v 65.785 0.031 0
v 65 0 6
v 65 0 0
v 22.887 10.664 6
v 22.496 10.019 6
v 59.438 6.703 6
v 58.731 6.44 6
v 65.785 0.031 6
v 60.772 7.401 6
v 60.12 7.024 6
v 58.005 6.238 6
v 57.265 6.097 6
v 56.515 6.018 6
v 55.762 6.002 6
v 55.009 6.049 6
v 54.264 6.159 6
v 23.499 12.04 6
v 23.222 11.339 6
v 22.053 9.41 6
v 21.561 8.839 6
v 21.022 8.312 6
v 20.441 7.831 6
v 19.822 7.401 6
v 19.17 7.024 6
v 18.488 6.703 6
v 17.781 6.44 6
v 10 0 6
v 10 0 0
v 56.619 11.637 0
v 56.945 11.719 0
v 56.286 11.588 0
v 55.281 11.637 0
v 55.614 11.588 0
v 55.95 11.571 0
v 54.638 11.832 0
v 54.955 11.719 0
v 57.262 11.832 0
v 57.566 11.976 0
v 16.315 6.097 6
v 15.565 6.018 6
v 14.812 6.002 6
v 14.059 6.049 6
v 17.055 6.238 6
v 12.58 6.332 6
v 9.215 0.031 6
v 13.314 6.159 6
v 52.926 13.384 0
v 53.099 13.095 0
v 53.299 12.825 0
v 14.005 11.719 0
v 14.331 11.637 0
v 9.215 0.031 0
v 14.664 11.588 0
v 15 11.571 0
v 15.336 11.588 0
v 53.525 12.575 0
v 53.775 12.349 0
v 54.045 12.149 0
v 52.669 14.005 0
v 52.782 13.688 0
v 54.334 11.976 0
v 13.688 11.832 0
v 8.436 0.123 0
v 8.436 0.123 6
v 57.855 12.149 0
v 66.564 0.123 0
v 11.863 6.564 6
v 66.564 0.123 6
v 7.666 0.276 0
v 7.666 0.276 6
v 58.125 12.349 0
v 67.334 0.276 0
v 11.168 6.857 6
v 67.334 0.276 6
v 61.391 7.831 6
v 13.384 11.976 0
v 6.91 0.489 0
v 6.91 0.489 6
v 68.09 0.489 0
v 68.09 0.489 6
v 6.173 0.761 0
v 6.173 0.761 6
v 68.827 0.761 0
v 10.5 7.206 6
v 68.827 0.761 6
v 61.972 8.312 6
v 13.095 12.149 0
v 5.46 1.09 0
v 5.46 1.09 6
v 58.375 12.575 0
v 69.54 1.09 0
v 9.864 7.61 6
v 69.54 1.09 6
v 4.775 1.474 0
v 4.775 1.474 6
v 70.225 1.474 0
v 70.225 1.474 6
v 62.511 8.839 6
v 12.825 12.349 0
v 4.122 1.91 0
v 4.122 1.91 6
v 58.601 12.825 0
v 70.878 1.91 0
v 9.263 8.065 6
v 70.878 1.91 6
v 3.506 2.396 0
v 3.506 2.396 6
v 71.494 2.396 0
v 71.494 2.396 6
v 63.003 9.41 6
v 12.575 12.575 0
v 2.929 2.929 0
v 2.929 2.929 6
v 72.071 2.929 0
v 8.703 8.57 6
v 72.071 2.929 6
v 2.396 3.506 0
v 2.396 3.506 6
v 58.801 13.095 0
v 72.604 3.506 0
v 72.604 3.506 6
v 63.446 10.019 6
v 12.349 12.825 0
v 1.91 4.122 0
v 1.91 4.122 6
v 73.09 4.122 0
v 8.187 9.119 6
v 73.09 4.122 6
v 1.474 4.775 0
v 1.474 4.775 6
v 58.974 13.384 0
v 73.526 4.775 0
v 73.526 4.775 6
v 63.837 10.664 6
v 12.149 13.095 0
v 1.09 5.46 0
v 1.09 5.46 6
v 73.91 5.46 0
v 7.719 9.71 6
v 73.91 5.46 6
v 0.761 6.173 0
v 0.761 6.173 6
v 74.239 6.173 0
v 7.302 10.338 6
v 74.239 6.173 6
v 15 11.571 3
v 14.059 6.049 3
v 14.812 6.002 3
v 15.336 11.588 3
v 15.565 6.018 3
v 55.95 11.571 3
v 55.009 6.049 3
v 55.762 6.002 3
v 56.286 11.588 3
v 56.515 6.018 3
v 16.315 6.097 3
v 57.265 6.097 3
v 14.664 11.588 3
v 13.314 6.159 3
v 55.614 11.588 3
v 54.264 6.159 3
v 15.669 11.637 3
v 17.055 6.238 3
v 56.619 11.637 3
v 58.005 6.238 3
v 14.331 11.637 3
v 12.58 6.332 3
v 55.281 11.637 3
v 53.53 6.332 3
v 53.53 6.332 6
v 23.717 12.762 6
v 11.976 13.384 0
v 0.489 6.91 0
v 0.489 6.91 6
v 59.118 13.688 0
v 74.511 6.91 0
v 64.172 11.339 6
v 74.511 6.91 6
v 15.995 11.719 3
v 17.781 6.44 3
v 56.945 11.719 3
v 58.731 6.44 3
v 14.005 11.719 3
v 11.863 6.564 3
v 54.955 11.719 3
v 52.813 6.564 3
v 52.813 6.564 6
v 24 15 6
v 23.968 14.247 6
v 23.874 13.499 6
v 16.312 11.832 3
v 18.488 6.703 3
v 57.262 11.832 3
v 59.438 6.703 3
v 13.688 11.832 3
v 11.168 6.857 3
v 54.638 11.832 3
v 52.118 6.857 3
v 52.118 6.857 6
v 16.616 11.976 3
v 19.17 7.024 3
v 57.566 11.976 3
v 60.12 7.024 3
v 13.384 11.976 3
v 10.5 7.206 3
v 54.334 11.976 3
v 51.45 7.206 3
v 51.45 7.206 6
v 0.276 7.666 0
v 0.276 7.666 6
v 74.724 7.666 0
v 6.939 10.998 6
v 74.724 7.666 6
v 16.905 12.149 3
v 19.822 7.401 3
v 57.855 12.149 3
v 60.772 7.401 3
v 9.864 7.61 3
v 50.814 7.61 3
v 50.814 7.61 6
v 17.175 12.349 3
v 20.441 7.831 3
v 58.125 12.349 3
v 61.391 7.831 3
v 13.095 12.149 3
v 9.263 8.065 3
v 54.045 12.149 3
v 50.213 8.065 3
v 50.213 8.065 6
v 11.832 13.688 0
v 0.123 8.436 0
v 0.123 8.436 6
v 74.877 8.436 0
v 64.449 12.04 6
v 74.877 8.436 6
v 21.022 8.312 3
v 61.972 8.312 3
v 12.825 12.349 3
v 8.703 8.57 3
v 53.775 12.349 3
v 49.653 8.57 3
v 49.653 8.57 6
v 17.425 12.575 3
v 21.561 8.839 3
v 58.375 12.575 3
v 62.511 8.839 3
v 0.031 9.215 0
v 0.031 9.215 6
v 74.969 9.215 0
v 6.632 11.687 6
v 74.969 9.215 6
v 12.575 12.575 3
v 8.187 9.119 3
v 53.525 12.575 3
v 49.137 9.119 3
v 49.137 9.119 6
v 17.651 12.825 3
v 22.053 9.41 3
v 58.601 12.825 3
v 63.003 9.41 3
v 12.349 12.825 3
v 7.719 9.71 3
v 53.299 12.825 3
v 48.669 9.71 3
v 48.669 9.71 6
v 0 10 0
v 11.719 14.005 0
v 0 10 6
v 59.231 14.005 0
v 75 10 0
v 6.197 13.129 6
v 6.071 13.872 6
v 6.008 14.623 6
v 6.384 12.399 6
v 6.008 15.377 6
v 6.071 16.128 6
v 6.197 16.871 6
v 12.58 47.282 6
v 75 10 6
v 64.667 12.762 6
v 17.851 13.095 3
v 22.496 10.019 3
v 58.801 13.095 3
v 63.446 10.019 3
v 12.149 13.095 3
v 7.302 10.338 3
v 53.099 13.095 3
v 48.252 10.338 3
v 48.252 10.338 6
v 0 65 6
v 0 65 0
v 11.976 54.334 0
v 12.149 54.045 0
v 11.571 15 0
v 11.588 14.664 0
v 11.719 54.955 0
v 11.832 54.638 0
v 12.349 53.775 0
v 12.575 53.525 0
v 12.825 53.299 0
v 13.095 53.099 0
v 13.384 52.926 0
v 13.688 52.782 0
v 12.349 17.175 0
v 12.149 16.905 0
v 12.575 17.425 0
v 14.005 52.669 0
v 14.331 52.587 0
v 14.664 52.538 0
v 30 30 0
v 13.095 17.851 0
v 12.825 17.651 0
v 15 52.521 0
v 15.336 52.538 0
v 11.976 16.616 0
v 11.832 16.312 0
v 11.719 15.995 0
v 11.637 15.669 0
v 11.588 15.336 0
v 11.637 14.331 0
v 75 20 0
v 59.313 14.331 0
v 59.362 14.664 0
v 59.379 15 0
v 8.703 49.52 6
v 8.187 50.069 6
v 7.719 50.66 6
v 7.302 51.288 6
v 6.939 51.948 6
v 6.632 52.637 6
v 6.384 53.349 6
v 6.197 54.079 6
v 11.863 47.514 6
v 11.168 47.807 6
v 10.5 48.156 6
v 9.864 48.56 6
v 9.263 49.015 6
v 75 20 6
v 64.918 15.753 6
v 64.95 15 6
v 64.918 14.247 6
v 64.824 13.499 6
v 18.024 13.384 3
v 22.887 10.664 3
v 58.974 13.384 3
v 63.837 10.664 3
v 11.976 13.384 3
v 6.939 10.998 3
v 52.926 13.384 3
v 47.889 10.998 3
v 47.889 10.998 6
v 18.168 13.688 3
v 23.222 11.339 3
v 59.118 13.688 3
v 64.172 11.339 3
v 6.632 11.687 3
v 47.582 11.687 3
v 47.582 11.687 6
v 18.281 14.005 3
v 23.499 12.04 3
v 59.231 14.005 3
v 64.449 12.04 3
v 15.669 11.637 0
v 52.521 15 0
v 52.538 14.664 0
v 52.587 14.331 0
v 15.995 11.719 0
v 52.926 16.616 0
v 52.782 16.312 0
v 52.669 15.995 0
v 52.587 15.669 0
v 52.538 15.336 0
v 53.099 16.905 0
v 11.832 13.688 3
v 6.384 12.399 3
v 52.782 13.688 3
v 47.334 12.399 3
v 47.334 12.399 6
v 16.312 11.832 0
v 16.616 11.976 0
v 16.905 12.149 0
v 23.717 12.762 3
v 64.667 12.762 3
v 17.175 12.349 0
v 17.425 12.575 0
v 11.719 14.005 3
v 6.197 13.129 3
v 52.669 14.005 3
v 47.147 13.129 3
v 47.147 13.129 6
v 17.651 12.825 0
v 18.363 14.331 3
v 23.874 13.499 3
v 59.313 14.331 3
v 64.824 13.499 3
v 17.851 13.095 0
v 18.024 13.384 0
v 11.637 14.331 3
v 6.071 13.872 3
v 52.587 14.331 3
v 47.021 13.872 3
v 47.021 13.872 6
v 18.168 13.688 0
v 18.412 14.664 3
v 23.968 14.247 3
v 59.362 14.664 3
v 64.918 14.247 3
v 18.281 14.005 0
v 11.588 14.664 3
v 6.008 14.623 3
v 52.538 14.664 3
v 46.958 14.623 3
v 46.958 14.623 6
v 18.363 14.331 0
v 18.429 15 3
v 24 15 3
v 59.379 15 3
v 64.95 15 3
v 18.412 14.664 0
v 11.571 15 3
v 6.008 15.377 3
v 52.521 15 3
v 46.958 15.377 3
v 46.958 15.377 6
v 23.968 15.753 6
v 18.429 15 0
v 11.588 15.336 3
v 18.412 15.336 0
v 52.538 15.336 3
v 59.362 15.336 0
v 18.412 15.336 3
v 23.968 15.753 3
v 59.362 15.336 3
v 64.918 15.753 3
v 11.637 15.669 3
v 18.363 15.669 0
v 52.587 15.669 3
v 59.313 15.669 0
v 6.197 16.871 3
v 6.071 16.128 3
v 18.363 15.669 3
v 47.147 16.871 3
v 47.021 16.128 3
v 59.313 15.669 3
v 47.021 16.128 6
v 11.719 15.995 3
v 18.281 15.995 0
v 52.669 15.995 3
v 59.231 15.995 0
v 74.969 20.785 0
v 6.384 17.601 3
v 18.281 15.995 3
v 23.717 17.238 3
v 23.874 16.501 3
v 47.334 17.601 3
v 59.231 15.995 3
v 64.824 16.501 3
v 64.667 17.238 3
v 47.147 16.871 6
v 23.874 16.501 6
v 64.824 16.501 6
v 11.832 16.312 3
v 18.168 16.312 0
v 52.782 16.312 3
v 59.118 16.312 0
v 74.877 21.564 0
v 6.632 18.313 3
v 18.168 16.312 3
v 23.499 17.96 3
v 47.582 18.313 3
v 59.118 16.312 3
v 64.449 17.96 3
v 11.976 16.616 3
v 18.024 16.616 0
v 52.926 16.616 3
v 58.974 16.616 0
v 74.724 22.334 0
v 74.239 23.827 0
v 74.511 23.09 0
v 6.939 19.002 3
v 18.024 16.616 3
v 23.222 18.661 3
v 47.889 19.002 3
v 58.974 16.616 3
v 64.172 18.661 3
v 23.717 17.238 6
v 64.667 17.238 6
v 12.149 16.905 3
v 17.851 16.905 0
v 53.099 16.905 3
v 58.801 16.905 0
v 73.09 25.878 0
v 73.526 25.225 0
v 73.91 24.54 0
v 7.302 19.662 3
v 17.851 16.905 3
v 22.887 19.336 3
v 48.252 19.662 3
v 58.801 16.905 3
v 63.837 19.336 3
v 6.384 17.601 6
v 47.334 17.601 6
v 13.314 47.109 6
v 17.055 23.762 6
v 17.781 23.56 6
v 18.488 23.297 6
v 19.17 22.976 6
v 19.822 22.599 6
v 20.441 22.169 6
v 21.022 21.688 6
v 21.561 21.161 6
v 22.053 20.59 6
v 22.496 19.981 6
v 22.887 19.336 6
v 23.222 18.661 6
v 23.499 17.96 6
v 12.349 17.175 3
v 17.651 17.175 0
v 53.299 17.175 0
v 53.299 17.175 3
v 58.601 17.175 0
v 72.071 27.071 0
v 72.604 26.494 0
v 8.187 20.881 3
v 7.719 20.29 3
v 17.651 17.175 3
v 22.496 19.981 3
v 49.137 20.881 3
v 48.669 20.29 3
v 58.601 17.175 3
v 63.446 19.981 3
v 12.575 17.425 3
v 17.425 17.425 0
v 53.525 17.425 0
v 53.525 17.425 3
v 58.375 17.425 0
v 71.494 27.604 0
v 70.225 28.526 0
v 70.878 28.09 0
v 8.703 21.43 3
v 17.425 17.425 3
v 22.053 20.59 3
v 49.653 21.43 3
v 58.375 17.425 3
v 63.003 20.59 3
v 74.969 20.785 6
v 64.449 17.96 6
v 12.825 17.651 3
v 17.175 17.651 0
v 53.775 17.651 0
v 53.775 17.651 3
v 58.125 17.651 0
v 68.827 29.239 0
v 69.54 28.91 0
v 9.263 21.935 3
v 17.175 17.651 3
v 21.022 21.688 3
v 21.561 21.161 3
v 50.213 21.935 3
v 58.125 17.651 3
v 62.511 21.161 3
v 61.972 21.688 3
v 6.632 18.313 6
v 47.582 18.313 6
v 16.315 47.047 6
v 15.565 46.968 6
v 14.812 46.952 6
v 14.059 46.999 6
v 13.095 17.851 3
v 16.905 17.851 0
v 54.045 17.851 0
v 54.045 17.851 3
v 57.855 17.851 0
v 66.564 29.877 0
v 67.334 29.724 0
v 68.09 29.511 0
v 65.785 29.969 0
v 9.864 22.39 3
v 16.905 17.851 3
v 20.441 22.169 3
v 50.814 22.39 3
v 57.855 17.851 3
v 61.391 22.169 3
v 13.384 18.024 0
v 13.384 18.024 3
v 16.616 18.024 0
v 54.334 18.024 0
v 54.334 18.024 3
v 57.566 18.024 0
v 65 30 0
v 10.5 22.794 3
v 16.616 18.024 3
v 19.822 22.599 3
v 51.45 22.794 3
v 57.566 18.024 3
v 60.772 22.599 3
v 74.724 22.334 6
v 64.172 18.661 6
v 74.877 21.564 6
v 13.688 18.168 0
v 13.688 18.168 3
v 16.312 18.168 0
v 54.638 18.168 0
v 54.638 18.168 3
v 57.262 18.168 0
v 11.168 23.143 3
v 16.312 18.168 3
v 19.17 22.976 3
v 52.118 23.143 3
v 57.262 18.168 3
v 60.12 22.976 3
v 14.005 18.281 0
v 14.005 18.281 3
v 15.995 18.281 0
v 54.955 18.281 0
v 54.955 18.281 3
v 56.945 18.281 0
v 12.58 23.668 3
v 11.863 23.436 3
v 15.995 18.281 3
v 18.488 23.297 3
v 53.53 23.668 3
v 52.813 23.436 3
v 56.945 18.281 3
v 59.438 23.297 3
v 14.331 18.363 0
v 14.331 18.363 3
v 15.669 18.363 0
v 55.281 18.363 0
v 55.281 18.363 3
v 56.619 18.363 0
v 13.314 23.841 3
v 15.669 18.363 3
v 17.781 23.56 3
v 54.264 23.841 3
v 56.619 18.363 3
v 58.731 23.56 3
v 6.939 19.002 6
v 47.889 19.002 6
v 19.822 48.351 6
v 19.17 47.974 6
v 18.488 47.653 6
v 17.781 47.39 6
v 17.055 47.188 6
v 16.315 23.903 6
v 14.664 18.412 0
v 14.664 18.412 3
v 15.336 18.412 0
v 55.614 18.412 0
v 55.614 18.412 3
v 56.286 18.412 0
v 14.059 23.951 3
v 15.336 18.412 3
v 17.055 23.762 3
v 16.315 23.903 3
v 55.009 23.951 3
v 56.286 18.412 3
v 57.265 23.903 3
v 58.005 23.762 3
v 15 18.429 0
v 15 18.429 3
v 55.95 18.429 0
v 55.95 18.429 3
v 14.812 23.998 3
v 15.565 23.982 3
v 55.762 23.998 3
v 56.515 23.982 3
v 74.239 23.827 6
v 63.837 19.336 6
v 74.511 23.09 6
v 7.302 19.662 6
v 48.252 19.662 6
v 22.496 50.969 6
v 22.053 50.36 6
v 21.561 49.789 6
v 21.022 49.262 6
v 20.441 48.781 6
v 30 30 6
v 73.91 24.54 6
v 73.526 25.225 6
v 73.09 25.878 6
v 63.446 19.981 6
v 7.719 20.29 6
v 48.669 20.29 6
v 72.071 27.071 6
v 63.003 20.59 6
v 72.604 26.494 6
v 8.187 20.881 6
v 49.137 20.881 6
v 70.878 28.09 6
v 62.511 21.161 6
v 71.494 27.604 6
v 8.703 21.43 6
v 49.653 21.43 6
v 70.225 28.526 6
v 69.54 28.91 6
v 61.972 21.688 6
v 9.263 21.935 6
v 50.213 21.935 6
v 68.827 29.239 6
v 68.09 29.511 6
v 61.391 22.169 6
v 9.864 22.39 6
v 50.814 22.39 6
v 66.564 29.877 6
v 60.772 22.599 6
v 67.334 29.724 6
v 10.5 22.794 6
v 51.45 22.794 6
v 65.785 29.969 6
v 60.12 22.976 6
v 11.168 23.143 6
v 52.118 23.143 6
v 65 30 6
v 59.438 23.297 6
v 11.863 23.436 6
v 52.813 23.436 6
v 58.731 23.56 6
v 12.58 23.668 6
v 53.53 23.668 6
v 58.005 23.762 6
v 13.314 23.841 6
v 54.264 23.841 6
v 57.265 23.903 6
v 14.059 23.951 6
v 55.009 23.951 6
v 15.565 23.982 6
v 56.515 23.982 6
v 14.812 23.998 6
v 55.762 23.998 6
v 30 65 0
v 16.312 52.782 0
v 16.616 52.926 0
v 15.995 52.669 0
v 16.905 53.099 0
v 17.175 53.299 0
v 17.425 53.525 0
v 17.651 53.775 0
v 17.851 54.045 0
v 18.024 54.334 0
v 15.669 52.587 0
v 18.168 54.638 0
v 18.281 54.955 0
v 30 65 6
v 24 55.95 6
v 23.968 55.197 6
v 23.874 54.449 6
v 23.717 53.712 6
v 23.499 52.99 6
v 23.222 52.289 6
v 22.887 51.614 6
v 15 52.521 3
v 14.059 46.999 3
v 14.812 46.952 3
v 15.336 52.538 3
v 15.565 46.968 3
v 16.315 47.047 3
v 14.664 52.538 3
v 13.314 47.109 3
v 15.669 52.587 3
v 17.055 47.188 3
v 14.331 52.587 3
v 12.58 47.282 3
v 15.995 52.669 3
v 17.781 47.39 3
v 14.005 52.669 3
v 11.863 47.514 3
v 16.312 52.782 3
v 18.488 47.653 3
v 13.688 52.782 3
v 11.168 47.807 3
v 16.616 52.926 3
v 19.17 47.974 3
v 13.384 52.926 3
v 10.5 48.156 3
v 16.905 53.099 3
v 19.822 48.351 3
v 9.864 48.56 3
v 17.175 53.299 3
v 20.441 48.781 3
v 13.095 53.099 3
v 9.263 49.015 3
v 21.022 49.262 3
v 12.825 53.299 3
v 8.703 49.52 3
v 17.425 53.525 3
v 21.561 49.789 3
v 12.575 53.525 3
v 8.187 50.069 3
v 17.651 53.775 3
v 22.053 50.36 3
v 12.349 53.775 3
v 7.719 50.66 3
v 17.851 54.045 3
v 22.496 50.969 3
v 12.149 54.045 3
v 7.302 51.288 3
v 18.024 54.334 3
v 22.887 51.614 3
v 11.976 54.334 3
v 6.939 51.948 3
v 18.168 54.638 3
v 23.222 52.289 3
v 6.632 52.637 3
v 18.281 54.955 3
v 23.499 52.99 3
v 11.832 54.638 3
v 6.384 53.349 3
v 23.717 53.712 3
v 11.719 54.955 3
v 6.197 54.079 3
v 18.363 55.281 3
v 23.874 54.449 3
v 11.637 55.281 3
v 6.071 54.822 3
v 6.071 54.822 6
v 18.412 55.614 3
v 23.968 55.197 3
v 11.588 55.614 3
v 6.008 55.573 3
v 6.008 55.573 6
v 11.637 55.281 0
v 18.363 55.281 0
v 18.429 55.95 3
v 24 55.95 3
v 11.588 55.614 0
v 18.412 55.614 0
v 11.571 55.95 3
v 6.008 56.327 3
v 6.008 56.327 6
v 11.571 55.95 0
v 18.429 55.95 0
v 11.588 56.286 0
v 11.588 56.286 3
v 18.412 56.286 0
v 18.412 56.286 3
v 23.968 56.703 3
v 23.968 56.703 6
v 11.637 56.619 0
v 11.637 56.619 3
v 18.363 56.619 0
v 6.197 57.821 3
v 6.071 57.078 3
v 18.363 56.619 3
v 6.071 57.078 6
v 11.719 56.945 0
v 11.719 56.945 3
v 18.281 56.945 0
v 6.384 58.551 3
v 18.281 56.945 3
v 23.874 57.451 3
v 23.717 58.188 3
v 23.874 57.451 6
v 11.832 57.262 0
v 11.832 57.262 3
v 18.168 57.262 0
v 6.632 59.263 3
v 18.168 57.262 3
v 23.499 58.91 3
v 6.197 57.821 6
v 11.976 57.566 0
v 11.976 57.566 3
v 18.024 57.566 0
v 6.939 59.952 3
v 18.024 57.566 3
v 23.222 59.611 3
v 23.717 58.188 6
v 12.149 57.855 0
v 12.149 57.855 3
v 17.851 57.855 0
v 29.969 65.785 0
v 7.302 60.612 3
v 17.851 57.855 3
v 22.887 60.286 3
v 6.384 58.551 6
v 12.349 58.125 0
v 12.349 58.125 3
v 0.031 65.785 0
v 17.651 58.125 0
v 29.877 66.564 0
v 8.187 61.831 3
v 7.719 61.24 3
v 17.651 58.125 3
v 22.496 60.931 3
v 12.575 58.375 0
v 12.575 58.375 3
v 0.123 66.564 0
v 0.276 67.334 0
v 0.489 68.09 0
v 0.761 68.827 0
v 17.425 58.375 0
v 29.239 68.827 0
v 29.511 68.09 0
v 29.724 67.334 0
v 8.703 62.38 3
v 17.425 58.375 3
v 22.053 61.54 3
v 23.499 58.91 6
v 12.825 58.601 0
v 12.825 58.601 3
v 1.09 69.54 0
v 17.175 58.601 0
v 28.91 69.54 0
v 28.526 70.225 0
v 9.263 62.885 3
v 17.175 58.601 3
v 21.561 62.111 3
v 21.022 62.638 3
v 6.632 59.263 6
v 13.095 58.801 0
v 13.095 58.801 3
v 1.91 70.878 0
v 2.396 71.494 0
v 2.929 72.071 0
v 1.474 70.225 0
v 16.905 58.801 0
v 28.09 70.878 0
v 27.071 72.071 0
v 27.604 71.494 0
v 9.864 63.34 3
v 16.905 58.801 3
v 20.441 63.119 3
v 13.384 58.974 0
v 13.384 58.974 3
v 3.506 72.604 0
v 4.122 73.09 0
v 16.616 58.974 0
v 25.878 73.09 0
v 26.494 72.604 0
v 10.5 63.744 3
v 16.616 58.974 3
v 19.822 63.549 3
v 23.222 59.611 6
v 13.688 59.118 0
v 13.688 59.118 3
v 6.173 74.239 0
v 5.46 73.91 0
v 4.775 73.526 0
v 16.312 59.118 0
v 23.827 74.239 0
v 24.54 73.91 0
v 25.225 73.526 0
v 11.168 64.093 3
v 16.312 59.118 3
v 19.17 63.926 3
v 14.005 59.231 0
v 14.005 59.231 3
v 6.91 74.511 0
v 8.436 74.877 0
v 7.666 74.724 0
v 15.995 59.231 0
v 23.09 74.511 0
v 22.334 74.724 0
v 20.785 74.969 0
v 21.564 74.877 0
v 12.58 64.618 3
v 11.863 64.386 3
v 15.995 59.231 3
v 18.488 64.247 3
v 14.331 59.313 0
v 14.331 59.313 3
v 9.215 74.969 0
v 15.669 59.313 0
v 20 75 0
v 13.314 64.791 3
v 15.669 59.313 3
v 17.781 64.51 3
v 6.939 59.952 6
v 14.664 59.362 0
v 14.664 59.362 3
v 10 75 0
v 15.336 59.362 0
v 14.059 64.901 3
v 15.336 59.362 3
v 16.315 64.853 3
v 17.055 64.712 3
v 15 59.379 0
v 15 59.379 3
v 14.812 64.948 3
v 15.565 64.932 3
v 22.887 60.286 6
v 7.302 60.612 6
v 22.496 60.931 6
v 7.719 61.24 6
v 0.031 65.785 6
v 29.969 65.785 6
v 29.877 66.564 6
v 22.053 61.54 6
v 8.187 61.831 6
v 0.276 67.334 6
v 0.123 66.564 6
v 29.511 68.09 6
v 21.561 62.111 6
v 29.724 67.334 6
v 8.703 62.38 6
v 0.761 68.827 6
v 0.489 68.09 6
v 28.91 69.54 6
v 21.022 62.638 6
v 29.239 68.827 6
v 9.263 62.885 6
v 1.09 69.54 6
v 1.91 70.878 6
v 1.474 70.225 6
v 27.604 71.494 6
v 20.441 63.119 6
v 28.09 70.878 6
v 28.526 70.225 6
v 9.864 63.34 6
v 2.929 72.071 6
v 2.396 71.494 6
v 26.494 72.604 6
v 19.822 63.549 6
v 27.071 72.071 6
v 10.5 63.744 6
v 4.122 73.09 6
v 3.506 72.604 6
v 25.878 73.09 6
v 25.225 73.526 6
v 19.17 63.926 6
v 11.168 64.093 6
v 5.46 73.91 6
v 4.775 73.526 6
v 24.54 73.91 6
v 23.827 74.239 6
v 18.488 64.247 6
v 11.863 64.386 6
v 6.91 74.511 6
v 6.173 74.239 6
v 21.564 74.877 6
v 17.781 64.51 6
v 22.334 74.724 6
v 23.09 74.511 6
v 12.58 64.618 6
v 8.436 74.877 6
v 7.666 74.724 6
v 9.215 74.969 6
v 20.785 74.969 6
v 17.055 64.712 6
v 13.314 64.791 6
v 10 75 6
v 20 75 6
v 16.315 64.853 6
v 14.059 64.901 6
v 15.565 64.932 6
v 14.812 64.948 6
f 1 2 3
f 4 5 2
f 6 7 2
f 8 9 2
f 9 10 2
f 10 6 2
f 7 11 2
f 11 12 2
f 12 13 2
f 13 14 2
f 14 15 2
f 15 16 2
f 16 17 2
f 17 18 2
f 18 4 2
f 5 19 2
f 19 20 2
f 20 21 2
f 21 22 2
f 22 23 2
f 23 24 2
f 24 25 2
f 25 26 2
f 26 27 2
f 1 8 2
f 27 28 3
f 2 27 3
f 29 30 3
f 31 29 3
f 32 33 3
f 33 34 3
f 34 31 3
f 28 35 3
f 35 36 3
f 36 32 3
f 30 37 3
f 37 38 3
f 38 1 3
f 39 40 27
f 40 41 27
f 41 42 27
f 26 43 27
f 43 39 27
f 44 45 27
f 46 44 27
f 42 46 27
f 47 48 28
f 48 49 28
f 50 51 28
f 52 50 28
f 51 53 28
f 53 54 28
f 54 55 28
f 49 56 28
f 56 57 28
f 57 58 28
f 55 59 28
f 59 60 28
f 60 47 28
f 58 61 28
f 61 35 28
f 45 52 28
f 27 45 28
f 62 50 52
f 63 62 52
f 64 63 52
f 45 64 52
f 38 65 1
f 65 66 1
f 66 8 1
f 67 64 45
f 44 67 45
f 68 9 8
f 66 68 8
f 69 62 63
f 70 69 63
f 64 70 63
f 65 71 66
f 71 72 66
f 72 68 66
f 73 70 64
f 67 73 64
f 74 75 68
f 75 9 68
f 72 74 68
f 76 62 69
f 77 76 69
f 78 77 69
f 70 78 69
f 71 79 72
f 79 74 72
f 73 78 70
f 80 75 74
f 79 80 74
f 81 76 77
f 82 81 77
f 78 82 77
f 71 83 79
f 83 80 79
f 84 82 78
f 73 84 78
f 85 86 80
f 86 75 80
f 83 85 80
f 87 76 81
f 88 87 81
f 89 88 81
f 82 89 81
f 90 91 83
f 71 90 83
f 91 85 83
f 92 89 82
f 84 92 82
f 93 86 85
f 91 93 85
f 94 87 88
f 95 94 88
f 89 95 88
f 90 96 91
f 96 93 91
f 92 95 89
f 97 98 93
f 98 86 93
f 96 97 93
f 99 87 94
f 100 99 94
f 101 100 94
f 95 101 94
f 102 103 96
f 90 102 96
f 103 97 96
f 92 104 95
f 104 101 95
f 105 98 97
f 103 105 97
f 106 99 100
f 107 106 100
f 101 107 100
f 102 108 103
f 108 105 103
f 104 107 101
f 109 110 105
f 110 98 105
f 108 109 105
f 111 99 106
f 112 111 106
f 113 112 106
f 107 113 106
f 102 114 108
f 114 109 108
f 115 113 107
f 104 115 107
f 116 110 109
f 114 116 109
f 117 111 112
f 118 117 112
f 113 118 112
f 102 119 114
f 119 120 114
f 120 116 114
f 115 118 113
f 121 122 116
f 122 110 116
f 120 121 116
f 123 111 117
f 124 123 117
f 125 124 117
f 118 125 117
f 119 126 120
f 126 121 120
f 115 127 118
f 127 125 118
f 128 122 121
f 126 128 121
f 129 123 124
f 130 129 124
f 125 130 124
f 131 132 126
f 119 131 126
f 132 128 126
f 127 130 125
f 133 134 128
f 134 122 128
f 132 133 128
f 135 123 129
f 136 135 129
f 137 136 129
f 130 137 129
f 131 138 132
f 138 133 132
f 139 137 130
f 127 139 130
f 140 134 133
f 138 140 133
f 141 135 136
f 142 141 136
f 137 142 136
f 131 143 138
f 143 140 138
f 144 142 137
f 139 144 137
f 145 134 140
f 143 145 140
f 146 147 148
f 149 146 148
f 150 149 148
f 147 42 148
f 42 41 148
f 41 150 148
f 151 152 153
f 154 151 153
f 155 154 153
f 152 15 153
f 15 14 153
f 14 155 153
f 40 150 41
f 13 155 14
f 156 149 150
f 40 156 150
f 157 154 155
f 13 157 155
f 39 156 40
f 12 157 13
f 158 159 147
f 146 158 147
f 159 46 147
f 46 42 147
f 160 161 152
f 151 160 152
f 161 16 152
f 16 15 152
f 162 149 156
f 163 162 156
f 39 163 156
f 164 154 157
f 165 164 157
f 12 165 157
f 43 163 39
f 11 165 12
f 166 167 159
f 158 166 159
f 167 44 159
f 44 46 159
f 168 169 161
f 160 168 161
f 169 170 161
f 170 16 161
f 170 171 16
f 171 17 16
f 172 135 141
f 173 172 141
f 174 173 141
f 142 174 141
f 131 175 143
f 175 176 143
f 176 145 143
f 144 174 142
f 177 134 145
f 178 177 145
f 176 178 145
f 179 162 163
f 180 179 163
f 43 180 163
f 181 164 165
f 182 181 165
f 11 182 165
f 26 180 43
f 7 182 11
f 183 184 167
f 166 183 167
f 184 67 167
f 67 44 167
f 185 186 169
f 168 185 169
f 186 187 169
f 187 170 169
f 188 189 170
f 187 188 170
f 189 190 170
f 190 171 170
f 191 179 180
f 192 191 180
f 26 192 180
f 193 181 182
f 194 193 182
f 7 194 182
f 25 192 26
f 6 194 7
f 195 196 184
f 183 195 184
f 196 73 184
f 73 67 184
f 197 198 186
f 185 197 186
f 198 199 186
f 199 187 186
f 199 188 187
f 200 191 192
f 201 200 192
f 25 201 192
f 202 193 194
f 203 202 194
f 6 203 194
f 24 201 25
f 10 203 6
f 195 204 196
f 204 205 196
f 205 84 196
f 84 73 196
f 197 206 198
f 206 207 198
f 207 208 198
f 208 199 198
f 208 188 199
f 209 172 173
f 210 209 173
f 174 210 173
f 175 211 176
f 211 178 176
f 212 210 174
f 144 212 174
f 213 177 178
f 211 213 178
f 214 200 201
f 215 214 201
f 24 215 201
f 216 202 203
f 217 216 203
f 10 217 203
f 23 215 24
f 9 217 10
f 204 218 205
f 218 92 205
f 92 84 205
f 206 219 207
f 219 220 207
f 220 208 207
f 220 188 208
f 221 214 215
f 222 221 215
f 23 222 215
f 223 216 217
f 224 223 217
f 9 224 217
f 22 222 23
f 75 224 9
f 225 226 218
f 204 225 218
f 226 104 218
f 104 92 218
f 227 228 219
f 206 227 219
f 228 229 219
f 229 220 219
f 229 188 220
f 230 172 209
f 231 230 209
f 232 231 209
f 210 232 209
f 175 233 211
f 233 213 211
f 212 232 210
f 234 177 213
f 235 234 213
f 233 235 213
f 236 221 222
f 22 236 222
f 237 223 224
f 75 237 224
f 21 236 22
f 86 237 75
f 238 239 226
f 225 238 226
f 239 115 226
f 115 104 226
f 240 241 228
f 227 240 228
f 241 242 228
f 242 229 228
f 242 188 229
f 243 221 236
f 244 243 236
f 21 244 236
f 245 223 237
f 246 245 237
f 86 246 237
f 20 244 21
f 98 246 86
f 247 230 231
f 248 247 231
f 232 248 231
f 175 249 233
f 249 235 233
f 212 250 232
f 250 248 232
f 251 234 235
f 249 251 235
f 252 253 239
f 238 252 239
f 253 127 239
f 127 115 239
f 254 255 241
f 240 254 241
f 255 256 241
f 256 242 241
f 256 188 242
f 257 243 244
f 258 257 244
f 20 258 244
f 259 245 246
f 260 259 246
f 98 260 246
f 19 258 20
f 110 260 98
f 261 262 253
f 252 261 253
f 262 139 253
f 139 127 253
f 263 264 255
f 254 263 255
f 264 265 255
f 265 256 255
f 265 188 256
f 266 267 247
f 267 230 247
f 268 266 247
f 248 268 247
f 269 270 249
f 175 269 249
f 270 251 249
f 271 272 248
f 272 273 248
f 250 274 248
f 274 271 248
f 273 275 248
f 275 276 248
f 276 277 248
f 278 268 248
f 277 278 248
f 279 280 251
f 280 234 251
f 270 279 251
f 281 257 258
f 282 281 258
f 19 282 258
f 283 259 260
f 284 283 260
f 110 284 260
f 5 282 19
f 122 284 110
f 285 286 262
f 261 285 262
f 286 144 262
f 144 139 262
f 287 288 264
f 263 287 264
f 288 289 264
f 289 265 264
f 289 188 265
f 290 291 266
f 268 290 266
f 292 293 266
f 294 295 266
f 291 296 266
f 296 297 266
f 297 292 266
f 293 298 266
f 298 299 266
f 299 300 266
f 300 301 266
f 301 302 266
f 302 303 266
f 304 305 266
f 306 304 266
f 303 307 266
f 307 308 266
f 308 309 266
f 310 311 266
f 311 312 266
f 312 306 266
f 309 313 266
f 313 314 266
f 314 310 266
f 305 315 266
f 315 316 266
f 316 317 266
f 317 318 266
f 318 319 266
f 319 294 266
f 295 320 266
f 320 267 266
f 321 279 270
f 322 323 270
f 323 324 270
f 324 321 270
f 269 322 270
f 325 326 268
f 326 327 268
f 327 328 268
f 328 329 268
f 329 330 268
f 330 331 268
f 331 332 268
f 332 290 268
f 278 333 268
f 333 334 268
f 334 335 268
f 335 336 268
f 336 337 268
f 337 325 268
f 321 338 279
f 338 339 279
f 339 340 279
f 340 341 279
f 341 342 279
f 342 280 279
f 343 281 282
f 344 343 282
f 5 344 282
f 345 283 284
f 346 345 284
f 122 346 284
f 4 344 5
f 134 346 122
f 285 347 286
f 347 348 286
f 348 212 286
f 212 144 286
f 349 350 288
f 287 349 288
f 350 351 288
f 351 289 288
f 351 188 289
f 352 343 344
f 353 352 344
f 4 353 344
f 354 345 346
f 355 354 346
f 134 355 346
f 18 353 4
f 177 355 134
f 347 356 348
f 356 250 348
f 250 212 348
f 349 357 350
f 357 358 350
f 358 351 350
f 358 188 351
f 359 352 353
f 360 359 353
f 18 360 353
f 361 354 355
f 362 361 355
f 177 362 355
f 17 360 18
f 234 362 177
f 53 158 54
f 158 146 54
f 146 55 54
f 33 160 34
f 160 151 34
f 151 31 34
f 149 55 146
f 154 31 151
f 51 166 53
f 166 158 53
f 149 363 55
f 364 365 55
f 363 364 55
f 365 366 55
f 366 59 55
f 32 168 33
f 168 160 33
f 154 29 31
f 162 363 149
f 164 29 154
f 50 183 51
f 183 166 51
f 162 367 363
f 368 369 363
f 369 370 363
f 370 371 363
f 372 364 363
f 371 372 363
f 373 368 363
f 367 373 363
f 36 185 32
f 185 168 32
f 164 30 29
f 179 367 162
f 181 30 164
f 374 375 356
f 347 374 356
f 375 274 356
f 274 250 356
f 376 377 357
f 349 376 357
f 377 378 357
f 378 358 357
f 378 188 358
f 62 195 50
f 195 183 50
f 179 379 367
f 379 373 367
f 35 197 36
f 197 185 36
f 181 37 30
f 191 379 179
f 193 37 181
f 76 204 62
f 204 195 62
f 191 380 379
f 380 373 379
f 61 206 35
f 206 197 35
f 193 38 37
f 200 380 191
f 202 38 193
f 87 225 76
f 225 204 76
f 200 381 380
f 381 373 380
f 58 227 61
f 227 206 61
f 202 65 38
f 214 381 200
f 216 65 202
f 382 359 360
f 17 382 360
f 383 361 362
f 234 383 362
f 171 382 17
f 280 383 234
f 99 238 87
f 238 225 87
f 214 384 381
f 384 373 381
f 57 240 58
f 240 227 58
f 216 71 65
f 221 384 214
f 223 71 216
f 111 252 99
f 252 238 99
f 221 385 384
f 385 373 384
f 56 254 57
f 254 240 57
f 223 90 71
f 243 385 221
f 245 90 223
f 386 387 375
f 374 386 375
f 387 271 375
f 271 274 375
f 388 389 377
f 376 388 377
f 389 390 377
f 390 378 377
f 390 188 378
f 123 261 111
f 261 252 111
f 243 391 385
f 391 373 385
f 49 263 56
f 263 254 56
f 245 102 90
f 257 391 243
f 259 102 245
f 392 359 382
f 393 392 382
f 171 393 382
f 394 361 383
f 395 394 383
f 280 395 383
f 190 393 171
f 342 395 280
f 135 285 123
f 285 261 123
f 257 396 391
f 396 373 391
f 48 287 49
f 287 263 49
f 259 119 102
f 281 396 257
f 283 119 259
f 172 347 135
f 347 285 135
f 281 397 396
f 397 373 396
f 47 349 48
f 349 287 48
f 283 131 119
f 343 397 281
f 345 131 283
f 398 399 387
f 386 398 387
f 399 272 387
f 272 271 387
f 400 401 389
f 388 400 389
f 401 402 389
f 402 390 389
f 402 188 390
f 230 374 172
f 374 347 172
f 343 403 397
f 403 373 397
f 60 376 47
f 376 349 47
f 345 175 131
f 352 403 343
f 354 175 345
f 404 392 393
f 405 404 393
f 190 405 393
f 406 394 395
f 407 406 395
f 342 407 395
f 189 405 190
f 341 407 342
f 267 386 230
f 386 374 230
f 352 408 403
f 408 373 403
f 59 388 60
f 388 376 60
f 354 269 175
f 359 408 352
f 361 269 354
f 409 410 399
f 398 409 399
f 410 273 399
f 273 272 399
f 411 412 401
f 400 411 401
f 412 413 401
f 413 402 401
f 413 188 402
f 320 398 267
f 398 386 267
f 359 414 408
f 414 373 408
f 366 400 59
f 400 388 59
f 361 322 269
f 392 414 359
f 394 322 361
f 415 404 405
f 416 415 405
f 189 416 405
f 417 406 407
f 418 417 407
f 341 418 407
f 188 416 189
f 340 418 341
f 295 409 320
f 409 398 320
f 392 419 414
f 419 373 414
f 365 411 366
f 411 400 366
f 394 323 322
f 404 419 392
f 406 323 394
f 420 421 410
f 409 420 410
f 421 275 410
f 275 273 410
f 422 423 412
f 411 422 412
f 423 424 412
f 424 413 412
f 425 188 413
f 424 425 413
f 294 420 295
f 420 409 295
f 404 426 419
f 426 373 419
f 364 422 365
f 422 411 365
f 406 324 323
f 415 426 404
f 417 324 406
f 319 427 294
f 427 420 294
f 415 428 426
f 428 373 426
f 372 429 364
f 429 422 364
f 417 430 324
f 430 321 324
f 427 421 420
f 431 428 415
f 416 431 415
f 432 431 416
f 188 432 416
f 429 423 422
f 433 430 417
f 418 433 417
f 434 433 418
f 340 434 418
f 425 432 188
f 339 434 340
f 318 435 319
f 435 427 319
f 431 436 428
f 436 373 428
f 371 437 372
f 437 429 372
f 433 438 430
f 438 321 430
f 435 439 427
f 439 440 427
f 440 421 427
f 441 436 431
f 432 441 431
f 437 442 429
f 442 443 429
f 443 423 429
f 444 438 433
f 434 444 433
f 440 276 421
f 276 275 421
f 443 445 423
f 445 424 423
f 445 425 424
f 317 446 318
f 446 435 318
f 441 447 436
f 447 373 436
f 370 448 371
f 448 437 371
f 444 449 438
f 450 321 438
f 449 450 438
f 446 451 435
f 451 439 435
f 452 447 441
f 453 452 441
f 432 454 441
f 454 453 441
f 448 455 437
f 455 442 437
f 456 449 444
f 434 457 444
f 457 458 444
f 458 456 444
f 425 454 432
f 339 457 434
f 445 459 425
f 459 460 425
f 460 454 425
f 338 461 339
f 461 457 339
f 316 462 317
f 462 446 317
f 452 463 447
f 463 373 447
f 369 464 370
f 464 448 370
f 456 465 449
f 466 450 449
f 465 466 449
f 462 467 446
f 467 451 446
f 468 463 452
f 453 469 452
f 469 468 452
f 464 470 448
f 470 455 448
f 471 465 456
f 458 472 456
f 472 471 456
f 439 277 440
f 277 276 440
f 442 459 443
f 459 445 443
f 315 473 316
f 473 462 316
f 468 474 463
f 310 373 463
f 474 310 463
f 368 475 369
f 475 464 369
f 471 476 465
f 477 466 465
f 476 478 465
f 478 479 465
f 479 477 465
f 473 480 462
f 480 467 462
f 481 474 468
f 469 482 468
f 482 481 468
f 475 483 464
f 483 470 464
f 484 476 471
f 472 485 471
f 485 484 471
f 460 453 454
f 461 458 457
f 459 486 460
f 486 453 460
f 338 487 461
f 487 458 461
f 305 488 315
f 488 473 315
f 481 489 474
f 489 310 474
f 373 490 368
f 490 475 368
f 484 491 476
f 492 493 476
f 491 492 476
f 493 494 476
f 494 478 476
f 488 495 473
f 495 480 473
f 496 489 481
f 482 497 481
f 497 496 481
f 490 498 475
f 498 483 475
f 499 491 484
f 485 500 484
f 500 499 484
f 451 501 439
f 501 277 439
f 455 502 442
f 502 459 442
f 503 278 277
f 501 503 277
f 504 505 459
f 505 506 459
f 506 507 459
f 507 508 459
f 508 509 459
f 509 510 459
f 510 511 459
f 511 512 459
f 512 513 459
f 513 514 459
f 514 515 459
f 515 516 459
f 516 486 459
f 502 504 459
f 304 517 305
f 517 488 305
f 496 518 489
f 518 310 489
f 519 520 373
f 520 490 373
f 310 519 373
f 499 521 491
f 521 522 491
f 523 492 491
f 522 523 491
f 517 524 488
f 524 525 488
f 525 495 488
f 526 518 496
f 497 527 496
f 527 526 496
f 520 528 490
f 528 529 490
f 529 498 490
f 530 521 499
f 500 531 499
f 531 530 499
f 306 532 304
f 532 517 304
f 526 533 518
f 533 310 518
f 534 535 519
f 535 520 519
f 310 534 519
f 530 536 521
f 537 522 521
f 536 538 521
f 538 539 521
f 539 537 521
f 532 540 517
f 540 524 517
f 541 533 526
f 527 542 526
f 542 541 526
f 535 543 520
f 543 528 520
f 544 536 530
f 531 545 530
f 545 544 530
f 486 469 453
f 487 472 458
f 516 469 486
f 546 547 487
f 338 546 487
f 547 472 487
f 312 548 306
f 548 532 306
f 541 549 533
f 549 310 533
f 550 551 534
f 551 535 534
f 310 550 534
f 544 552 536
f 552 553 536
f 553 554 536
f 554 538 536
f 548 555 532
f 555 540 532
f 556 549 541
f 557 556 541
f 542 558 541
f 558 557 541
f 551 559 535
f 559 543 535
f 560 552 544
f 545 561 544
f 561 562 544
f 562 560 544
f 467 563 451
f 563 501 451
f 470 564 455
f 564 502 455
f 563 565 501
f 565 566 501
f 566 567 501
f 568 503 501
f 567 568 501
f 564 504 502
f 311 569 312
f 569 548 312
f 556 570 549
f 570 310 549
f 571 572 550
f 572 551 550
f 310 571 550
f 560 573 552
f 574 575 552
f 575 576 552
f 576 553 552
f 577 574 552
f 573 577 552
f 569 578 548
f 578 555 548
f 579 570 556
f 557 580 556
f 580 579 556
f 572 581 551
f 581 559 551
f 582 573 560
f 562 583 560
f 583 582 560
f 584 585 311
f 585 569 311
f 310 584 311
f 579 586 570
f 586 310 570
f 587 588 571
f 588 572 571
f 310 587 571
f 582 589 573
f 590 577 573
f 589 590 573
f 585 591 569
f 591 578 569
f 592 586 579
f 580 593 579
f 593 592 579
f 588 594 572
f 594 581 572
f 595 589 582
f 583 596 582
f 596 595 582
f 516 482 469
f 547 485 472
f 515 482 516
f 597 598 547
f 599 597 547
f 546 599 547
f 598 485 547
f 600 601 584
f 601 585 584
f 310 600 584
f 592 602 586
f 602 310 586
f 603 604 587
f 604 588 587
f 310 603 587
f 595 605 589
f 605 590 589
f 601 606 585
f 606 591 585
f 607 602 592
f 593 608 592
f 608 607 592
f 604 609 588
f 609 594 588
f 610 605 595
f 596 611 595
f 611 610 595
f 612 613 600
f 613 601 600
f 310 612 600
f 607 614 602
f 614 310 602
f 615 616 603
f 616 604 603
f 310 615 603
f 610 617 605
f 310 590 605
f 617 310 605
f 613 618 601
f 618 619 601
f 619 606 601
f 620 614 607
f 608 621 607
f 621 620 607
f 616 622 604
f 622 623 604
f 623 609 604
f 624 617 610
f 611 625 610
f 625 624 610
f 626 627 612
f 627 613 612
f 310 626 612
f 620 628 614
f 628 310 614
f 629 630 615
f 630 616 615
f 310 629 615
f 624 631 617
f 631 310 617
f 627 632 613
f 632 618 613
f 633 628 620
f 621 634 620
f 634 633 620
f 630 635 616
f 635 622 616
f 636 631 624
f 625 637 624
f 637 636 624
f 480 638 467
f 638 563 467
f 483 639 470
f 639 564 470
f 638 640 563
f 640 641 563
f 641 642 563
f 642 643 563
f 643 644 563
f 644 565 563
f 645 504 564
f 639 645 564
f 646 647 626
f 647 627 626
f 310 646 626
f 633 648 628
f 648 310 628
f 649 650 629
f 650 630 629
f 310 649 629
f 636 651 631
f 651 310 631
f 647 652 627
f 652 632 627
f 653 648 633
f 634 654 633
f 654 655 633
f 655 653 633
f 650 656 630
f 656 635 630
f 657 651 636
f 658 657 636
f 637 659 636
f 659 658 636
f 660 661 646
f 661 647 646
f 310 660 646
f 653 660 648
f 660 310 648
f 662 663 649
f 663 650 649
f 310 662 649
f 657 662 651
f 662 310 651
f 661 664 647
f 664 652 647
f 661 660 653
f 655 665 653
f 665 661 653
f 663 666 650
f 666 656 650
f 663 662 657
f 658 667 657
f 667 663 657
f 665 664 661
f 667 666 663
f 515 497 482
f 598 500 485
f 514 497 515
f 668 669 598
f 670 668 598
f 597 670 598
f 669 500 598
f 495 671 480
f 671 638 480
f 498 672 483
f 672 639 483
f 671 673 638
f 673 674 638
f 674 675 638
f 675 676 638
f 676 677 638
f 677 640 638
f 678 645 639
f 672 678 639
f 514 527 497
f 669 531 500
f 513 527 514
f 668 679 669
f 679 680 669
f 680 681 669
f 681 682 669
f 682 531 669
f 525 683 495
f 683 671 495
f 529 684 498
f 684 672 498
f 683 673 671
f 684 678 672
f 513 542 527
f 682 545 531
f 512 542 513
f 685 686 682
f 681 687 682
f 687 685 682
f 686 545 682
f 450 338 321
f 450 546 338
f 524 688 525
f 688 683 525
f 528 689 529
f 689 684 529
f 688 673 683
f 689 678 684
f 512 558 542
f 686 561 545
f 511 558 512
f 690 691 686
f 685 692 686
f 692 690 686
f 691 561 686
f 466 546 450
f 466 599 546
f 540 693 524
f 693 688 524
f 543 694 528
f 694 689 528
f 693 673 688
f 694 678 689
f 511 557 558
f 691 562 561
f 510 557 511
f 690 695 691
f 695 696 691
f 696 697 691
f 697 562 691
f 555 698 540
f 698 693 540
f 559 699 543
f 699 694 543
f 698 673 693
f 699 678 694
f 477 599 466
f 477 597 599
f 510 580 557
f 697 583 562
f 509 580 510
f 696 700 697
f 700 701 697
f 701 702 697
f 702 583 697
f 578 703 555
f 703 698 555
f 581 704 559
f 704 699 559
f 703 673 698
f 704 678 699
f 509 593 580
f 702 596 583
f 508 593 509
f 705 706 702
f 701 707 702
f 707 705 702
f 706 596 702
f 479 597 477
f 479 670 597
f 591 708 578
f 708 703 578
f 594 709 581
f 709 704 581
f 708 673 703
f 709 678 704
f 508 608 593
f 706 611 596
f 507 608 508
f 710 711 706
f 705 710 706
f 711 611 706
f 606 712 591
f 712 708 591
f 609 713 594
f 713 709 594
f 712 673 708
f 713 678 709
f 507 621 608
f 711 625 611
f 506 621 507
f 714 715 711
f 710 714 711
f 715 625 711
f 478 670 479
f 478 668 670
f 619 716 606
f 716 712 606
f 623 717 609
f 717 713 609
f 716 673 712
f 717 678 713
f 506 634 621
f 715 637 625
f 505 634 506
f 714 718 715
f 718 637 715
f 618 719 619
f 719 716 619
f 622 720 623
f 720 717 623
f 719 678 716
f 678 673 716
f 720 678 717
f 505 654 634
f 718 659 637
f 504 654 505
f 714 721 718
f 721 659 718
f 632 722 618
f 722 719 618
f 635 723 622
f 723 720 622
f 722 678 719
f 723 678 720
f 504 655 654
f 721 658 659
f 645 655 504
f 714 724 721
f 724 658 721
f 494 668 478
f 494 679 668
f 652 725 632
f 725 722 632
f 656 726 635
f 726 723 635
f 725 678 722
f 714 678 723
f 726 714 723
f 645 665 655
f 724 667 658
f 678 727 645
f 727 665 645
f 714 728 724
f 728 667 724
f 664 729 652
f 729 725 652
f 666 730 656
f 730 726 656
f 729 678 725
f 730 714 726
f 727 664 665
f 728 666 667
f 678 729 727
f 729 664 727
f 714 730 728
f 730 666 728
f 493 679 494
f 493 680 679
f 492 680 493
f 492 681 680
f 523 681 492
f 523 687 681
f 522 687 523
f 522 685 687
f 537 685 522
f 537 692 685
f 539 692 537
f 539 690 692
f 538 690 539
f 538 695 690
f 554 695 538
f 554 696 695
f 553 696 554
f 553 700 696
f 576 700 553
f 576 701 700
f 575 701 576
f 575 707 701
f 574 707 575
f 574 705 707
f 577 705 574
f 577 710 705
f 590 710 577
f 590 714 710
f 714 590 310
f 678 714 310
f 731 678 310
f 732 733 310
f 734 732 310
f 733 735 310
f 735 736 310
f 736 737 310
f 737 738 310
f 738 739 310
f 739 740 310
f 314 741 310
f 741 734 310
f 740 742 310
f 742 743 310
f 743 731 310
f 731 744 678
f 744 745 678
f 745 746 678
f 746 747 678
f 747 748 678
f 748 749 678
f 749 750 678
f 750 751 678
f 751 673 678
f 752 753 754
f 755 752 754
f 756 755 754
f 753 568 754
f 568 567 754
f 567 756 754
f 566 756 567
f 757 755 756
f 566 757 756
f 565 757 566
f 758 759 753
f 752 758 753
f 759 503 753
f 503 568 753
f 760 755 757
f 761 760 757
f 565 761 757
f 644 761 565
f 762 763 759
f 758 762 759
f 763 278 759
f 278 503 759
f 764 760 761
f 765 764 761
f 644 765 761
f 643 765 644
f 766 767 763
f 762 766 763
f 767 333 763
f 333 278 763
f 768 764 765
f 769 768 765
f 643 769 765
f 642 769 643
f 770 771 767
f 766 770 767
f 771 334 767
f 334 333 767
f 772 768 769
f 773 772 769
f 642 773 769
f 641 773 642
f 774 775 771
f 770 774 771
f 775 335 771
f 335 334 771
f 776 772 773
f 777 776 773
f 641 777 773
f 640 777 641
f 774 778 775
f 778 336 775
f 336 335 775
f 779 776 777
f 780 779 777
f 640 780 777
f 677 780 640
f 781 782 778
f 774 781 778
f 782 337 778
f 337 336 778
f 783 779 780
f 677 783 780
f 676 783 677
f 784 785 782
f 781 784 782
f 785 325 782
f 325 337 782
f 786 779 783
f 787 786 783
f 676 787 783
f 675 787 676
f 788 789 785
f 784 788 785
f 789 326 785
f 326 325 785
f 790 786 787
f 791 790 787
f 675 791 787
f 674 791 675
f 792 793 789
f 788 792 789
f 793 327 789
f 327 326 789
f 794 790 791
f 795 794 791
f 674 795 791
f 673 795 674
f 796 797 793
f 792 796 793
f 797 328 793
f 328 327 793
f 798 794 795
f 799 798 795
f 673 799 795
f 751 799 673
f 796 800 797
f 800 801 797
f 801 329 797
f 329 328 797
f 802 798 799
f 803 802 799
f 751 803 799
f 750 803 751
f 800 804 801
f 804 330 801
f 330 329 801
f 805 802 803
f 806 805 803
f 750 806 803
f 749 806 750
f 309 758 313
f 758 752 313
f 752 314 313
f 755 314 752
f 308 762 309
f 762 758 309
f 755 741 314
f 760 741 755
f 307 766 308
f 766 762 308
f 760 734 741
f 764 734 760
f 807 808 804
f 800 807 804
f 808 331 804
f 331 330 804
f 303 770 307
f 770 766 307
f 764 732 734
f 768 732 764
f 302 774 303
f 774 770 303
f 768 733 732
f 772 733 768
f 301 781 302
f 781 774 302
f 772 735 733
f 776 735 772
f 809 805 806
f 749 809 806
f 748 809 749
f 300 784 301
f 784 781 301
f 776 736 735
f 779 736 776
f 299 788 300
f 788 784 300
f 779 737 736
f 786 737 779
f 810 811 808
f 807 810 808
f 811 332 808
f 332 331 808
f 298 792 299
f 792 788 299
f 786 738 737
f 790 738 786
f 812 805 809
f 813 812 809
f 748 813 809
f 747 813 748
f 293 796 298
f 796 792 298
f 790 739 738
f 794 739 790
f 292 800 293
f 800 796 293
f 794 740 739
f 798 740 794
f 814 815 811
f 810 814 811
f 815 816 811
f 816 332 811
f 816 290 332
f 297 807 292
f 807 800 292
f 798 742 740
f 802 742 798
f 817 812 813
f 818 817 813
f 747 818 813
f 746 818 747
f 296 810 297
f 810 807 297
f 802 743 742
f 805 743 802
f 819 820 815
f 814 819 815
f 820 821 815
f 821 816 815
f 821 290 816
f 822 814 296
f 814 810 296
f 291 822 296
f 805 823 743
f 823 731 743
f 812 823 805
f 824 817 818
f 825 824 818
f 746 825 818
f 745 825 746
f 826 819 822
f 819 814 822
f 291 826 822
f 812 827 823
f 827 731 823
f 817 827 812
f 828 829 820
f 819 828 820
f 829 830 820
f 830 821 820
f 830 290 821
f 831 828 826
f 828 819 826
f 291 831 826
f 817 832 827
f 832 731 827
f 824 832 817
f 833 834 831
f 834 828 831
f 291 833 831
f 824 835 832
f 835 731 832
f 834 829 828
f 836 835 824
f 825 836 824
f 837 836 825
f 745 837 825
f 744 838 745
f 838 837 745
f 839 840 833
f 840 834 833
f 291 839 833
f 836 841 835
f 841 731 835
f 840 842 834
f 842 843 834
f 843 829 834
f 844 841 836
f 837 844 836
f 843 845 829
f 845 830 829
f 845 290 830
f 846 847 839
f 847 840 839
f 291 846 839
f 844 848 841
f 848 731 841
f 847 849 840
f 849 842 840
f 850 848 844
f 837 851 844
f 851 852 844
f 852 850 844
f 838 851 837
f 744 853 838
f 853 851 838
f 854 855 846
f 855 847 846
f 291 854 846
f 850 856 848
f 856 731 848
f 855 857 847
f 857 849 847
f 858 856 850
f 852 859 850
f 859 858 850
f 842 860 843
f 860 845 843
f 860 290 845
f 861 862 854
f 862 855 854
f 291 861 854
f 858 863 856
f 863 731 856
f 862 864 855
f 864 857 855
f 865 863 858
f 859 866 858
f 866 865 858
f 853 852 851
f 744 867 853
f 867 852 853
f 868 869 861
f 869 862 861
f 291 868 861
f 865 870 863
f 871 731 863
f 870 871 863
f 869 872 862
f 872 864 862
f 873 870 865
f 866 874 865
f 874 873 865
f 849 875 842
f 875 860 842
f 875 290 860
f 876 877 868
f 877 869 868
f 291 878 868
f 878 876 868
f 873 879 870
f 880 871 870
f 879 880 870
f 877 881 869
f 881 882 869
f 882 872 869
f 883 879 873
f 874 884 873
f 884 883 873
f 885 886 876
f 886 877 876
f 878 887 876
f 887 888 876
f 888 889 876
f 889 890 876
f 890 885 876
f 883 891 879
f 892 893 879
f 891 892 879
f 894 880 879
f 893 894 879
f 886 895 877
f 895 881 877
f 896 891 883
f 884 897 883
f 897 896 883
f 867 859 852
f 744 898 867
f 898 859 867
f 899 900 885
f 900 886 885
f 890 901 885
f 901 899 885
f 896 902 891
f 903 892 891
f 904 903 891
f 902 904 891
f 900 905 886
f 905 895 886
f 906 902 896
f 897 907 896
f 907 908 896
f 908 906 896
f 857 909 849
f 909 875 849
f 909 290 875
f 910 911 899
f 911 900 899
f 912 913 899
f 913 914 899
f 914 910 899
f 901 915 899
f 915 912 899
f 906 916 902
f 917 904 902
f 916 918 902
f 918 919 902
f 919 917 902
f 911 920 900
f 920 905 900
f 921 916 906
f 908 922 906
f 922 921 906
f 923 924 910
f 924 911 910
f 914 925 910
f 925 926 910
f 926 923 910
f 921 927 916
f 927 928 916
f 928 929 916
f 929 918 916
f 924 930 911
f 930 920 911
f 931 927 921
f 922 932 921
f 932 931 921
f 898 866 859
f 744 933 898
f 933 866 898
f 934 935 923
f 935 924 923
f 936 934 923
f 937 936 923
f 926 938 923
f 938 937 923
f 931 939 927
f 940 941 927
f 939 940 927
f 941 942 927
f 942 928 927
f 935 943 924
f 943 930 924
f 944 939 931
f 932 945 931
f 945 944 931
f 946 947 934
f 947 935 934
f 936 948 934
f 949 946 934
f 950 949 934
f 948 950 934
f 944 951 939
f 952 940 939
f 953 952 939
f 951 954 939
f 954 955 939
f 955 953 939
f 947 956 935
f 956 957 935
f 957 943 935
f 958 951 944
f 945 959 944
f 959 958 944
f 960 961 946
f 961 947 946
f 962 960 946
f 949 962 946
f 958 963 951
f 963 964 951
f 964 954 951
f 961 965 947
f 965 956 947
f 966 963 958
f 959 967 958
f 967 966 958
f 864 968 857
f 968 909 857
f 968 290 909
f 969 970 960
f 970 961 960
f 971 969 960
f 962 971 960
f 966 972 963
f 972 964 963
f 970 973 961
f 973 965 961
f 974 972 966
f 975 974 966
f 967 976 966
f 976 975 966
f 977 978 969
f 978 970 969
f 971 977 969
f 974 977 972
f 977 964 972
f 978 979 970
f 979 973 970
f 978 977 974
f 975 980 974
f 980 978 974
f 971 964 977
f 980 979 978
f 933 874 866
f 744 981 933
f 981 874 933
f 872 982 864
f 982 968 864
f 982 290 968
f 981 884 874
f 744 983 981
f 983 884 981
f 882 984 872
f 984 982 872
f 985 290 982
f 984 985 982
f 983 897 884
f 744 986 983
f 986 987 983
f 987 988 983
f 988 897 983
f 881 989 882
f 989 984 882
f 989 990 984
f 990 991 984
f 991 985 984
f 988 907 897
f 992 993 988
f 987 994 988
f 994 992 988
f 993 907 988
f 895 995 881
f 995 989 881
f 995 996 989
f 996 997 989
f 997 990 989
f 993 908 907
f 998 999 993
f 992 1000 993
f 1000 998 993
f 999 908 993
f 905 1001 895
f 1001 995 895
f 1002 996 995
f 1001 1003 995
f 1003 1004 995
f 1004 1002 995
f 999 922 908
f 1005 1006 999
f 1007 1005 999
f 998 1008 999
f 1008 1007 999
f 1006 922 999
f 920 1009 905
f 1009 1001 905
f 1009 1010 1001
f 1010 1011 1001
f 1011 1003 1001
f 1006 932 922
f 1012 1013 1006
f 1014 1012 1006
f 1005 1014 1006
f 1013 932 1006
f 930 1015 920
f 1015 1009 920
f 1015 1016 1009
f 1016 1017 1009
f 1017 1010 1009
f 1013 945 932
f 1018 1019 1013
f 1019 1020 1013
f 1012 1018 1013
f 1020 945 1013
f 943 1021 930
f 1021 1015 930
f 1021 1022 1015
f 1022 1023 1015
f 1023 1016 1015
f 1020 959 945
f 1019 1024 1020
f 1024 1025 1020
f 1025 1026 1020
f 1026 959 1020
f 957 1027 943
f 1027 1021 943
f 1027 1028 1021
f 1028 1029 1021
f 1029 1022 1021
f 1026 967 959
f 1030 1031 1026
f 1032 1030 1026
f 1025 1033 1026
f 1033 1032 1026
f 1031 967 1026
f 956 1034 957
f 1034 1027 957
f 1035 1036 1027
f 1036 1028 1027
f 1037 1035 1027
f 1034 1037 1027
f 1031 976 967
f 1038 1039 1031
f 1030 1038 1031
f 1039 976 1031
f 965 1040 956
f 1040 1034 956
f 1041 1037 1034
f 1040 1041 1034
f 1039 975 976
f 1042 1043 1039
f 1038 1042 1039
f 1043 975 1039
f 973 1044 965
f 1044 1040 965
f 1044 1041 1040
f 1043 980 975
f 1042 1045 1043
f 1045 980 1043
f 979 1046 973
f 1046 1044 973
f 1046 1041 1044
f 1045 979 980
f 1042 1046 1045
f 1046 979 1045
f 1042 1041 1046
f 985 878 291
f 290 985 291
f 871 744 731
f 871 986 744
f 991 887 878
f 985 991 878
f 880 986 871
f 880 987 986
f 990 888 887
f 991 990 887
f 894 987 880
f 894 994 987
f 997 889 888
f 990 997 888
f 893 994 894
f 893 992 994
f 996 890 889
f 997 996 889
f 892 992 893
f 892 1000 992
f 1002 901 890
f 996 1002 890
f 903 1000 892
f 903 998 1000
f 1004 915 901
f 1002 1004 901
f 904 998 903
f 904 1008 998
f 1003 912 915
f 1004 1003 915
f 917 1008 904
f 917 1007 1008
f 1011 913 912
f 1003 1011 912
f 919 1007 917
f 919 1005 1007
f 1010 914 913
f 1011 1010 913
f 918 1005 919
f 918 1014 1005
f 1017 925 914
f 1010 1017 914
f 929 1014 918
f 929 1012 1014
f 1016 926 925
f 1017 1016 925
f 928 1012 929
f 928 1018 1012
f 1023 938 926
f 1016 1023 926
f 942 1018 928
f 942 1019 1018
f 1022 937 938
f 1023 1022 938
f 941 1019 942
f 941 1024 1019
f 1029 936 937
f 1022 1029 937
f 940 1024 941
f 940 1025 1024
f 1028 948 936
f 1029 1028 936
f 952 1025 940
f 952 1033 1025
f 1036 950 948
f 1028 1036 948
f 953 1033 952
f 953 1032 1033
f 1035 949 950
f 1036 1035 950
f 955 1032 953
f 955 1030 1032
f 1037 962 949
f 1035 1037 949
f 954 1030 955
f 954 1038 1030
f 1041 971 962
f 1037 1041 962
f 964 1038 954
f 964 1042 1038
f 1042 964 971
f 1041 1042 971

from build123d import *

# Parameters (mm, degrees)
BOSS_EXTRUDE1_DEPTH = 6
SKETCH2_R           = 3.429
CUT_EXTRUDE1_DEPTH  = 107.235587258
SKETCH3_R           = 9
CUT_EXTRUDE2_DEPTH  = 3
FILLET1_R           = 10


with BuildPart() as part:
    # Sketch1 → Boss-Extrude1 (new body)
    with BuildSketch(Plane.XY):
        Polygon((0, 0), (0, 75), (30, 75), (30, 30), (75, 30), (75, 0), align=None)
    extrude(amount=BOSS_EXTRUDE1_DEPTH)

    # Sketch2 → Cut-Extrude1 (cut, through all)
    with BuildSketch(Plane.XY.offset(6)):
        with Locations((15, 15)):
            Circle(SKETCH2_R)
        with Locations((15, 55.95)):
            Circle(SKETCH2_R)
        with Locations((55.95, 15)):
            Circle(SKETCH2_R)
    extrude(amount=-CUT_EXTRUDE1_DEPTH, mode=Mode.SUBTRACT)

    # Sketch3 → Cut-Extrude2 (cut)
    with BuildSketch(Plane.XY.offset(6)):
        with Locations((55.95, 15)):
            Circle(SKETCH3_R)
        with Locations((15, 15)):
            Circle(SKETCH3_R)
        with Locations((15, 55.95)):
            Circle(SKETCH3_R)
    extrude(amount=-CUT_EXTRUDE2_DEPTH, mode=Mode.SUBTRACT)

    # Fillet1
    fillet1_edges = [part.edges().sort_by_distance(p)[0] for p in [
        (0, 0, 3),
        (0, 75, 3),
        (30, 75, 3),
        (75, 30, 3),
        (75, 0, 3),
    ]]
    fillet(fillet1_edges, radius=FILLET1_R)


solid = part.part
